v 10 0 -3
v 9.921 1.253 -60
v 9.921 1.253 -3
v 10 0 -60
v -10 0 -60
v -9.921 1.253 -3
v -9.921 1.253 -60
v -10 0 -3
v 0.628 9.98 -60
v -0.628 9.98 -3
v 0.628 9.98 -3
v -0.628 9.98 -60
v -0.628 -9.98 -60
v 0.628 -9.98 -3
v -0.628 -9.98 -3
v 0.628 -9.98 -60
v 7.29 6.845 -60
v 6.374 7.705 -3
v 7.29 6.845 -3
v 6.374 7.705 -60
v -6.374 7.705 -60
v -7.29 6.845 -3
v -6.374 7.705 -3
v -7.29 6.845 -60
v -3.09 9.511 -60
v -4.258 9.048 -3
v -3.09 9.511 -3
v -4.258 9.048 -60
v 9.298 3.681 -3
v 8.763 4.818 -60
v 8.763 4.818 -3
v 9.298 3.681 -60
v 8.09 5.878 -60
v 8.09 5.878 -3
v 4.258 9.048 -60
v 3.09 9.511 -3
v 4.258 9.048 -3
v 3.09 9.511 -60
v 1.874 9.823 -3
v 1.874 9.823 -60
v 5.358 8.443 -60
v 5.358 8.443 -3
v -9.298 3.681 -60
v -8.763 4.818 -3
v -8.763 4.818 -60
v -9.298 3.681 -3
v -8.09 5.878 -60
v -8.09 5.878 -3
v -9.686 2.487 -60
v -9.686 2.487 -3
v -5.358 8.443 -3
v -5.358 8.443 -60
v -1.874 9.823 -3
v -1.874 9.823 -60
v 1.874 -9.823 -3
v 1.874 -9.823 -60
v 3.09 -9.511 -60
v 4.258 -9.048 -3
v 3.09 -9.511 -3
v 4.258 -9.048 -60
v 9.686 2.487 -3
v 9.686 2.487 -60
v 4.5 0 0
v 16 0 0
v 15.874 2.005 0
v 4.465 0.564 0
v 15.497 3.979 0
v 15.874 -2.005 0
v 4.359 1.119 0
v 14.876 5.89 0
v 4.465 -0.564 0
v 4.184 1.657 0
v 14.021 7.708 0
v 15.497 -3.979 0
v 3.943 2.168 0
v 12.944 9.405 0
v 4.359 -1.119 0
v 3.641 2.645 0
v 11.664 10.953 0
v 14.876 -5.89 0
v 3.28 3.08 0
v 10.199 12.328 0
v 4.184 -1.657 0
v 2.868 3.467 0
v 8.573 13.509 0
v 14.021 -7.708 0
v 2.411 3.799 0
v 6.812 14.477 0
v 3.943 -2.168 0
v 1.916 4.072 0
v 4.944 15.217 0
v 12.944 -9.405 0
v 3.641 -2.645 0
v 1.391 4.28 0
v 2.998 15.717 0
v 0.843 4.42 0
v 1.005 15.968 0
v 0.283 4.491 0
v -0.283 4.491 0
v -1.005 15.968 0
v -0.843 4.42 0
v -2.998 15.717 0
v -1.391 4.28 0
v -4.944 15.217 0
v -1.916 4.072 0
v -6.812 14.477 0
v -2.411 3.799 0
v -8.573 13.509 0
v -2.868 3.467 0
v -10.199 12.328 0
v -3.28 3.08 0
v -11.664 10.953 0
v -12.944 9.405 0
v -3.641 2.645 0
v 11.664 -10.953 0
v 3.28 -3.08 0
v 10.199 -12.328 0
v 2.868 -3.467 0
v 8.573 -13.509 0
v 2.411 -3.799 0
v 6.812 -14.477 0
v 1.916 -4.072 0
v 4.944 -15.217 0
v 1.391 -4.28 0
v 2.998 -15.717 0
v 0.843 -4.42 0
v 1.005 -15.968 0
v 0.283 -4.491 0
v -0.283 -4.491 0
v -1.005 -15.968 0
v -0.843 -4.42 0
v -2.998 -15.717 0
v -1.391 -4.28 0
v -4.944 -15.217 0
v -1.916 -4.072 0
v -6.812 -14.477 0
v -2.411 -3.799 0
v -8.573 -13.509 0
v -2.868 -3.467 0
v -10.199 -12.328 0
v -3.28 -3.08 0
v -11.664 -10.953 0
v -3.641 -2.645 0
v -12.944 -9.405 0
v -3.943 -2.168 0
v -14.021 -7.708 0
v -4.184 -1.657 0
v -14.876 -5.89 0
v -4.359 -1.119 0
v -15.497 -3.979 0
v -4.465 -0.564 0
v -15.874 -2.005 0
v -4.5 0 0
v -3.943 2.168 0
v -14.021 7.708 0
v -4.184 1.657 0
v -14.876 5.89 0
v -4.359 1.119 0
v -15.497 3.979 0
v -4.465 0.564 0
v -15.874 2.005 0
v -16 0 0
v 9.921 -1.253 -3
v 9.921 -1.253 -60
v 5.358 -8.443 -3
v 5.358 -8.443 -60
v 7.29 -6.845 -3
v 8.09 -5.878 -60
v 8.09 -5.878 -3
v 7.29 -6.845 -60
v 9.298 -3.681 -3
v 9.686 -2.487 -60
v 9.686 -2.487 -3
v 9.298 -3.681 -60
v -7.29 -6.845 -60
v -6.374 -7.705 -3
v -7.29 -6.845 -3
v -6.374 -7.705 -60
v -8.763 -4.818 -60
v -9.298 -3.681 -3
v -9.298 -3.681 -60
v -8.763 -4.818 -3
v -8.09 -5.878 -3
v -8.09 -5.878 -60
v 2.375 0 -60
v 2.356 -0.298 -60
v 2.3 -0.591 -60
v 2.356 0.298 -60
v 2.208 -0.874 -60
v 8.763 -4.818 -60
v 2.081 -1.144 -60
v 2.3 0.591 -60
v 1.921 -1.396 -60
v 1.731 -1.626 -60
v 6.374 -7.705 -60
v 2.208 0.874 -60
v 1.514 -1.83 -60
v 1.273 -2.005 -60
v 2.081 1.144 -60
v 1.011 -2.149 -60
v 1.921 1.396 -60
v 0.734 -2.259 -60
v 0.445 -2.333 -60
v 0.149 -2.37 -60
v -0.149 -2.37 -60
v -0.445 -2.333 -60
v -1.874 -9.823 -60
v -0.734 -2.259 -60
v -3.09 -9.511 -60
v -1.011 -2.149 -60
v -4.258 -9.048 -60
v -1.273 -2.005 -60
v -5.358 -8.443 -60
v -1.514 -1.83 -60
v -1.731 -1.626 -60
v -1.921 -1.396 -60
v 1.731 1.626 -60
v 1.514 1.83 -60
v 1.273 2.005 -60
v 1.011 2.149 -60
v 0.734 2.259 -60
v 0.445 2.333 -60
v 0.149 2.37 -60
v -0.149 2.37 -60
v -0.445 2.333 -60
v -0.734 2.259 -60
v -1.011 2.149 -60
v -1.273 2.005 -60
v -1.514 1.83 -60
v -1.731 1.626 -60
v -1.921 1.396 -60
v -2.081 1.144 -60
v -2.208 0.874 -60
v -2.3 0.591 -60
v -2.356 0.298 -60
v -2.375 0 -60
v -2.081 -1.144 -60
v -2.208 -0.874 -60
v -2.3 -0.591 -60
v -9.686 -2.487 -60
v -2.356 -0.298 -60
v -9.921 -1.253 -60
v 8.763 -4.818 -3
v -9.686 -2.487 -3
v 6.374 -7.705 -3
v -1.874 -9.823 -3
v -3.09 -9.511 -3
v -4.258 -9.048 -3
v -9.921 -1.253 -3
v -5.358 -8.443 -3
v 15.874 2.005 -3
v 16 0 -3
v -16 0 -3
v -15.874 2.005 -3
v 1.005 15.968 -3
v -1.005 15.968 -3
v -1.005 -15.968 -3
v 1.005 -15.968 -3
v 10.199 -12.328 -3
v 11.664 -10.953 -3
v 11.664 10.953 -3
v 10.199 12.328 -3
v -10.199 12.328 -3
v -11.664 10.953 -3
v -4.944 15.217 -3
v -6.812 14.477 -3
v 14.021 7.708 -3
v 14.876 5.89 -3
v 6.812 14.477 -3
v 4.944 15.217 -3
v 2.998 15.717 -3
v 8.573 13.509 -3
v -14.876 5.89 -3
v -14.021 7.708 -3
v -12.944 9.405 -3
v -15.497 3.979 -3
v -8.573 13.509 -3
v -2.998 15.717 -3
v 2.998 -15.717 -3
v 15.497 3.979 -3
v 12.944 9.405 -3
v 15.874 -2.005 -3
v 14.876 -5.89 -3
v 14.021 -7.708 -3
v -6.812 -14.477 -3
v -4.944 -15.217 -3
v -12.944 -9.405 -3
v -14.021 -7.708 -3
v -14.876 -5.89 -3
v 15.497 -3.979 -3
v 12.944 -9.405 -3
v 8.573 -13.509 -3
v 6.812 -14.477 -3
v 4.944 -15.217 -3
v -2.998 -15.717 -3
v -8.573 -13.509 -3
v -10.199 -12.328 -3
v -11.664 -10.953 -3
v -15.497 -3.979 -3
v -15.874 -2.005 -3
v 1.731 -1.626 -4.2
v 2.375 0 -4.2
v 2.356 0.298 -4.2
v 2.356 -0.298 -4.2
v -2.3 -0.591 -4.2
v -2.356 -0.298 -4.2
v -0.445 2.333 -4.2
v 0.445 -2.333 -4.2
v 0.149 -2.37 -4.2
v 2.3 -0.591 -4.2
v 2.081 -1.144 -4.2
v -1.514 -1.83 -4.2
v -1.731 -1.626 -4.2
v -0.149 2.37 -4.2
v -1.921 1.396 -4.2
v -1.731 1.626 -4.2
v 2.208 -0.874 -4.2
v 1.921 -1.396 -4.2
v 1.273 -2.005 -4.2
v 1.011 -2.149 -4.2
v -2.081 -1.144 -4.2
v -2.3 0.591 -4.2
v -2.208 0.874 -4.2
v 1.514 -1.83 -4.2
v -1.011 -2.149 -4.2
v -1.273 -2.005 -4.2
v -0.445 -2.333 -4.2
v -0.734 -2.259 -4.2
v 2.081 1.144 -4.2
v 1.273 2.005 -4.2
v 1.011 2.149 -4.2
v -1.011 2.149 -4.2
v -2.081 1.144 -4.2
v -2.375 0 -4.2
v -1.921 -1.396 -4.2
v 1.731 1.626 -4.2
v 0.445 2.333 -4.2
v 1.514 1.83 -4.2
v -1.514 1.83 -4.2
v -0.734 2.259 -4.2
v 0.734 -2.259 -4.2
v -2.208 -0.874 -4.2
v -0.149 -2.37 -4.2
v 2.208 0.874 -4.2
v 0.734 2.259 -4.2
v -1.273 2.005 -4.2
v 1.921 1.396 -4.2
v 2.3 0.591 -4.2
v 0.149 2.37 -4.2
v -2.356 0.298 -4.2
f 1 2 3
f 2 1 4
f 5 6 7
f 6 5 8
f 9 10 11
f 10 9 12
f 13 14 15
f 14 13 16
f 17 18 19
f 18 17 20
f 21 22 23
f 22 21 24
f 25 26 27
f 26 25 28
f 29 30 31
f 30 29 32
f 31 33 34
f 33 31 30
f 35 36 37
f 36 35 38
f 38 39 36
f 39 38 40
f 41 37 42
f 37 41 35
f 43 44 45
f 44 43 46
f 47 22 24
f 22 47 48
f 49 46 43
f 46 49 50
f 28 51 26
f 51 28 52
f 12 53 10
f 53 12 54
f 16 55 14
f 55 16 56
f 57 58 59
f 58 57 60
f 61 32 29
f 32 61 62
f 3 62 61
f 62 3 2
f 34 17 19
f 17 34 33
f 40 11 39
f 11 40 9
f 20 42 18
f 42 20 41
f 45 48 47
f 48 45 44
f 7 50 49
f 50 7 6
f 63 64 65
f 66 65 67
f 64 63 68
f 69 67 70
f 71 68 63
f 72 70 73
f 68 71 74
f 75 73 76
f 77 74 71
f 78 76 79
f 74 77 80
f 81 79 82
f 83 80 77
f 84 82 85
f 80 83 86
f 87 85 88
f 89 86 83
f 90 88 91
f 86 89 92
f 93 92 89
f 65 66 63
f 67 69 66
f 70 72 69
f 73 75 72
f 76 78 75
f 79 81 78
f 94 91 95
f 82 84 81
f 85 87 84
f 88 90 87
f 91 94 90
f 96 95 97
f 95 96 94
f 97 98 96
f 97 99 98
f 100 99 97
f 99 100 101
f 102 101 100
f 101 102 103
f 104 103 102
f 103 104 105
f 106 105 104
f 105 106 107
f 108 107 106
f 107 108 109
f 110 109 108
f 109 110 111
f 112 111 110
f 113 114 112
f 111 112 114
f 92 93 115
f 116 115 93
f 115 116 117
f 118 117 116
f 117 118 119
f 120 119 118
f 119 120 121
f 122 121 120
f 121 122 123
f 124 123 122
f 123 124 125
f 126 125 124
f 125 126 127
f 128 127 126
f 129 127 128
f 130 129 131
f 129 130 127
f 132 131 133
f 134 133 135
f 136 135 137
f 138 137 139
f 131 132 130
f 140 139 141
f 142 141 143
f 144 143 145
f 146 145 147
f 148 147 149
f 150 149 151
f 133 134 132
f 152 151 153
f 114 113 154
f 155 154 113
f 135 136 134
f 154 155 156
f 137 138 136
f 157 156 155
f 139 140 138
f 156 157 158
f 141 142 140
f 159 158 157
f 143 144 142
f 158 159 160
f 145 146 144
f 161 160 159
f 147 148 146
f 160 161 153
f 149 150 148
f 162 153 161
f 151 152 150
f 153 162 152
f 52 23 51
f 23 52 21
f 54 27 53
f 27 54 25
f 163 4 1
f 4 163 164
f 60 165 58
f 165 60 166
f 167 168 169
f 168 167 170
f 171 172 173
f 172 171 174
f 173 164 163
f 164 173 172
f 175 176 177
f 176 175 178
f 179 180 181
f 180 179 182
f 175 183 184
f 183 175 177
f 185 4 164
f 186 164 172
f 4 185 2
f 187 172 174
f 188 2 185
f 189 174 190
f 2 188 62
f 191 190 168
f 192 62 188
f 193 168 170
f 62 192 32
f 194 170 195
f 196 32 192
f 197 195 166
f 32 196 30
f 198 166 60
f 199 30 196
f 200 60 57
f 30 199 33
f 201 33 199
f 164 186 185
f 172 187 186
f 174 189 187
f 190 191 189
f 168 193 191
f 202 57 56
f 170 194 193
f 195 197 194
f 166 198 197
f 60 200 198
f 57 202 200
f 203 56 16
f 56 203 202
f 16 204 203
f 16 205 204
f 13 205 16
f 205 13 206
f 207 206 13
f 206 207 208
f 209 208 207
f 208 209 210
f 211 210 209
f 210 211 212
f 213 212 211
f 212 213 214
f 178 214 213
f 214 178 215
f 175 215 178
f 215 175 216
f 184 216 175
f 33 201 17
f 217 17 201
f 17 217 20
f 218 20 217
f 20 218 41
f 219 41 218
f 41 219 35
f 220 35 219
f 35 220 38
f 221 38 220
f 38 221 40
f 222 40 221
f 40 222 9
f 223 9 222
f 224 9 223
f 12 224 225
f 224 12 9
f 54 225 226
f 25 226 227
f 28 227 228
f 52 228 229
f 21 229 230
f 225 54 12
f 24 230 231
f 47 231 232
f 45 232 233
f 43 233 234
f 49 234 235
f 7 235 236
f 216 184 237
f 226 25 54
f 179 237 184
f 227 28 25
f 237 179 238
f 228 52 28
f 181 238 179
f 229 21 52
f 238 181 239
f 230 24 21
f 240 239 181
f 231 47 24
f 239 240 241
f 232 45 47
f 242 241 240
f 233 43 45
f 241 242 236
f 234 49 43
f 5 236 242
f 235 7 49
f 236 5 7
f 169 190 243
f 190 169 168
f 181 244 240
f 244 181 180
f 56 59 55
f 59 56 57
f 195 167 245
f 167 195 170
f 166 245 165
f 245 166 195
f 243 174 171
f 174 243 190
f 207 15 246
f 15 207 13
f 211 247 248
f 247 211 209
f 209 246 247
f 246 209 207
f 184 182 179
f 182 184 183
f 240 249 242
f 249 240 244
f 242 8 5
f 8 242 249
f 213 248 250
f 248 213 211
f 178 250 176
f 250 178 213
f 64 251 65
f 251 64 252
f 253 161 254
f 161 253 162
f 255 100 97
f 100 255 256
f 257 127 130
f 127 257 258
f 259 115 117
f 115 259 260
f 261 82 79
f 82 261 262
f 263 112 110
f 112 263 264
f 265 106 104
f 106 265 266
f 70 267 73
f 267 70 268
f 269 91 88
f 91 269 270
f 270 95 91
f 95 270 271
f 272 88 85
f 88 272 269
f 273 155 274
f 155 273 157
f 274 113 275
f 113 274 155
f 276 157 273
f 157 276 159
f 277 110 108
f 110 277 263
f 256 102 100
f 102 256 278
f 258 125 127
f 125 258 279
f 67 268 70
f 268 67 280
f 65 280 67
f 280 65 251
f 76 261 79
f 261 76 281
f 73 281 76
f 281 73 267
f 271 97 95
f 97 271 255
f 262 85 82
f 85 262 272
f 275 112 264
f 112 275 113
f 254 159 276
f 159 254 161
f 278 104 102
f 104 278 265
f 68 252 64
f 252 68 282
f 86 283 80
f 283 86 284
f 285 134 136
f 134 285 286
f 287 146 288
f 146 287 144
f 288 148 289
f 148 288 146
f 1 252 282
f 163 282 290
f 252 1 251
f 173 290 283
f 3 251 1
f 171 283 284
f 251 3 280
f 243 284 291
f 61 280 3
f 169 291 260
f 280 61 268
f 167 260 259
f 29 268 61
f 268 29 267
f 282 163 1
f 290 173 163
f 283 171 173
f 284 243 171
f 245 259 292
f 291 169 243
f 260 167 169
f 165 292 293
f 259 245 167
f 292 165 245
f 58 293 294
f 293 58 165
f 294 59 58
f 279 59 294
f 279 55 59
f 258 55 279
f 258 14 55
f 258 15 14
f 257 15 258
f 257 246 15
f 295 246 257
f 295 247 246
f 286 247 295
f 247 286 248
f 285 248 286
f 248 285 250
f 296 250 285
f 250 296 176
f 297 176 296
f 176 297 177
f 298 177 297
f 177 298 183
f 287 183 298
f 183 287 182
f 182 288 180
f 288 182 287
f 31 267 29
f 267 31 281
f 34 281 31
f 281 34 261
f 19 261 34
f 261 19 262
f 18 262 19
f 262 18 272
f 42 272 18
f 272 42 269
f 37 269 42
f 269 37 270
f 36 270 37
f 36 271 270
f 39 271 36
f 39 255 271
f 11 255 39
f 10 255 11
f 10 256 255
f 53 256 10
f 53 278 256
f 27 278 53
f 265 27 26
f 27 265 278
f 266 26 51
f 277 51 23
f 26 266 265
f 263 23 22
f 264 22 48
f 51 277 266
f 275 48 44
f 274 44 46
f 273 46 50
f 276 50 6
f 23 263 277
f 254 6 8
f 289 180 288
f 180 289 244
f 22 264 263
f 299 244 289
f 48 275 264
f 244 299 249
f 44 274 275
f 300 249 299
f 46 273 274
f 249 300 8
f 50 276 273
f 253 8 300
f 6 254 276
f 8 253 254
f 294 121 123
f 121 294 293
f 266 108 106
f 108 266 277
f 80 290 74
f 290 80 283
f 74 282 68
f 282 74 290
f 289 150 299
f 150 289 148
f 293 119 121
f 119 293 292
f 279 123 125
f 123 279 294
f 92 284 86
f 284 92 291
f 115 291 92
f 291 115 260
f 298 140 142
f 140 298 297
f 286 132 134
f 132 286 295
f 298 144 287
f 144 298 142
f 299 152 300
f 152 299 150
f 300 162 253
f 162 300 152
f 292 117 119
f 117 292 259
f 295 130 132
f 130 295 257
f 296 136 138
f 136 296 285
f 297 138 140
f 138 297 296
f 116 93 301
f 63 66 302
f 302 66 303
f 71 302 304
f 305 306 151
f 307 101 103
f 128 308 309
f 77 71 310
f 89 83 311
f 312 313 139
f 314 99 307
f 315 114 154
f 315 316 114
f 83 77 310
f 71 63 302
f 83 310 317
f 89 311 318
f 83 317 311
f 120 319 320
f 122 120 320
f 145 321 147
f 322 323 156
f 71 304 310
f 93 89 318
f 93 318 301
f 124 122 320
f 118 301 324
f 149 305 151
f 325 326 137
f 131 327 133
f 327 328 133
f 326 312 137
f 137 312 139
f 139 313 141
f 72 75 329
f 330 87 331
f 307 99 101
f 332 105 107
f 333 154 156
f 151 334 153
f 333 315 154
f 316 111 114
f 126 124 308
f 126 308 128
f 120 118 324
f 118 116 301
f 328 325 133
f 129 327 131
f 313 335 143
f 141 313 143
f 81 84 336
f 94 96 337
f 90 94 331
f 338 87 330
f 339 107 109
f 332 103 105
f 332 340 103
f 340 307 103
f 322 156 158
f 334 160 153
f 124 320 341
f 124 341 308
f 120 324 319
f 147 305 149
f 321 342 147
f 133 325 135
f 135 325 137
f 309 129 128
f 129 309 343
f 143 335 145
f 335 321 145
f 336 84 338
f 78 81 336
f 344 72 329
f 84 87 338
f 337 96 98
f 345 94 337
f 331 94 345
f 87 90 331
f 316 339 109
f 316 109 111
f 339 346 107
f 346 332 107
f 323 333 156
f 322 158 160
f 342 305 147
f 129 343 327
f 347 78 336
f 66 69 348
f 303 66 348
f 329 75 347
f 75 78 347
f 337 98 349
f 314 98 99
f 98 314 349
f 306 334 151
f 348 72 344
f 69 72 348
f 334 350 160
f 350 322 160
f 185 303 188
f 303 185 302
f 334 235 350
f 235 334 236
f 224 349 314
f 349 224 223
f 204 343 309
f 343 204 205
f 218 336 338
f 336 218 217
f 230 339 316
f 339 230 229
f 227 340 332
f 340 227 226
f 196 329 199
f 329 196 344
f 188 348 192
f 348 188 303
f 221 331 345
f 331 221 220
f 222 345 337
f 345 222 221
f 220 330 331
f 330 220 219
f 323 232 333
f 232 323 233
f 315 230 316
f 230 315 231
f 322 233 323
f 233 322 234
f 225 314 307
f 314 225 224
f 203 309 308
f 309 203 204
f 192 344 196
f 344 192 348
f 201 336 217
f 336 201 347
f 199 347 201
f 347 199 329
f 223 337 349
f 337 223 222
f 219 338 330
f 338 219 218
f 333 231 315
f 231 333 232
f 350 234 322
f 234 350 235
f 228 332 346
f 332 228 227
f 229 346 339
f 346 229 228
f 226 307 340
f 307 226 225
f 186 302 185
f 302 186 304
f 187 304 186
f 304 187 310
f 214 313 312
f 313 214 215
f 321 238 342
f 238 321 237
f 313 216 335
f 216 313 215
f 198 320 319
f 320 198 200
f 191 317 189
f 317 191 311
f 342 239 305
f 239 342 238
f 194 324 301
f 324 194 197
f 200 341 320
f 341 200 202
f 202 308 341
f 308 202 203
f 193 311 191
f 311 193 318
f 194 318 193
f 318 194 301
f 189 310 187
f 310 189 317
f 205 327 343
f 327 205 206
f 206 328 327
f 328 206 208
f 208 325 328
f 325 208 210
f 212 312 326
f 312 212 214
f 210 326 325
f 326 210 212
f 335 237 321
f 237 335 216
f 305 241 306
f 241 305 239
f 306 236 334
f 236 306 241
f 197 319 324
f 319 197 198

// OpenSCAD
$fn = 50;


difference() {
	union() {
		translate(v = [0, 0, -60.0000000000]) {
			cylinder(h = 60, r = 10.0000000000);
		}
		translate(v = [0, 0, -3.0000000000]) {
			cylinder(h = 3, r = 16.0000000000);
		}
	}
	union() {
		translate(v = [0, 0, 0]) {
			rotate(a = [0, 0, 0]) {
				difference() {
					union() {
						#translate(v = [0, 0, -60.0000000000]) {
							cylinder(h = 60, r = 2.2500000000);
						}
						#translate(v = [0, 0, -4.2000000000]) {
							cylinder(h = 4.2000000000, r = 10.0000000000, r1 = 2.3750000000, r2 = 4.5000000000);
						}
						#translate(v = [0, 0, -60.0000000000]) {
							cylinder(h = 60, r = 2.3750000000);
						}
						#translate(v = [0, 0, -60.0000000000]) {
							cylinder(h = 60, r = 2.2500000000);
						}
					}
					union();
				}
			}
		}
	}
}
